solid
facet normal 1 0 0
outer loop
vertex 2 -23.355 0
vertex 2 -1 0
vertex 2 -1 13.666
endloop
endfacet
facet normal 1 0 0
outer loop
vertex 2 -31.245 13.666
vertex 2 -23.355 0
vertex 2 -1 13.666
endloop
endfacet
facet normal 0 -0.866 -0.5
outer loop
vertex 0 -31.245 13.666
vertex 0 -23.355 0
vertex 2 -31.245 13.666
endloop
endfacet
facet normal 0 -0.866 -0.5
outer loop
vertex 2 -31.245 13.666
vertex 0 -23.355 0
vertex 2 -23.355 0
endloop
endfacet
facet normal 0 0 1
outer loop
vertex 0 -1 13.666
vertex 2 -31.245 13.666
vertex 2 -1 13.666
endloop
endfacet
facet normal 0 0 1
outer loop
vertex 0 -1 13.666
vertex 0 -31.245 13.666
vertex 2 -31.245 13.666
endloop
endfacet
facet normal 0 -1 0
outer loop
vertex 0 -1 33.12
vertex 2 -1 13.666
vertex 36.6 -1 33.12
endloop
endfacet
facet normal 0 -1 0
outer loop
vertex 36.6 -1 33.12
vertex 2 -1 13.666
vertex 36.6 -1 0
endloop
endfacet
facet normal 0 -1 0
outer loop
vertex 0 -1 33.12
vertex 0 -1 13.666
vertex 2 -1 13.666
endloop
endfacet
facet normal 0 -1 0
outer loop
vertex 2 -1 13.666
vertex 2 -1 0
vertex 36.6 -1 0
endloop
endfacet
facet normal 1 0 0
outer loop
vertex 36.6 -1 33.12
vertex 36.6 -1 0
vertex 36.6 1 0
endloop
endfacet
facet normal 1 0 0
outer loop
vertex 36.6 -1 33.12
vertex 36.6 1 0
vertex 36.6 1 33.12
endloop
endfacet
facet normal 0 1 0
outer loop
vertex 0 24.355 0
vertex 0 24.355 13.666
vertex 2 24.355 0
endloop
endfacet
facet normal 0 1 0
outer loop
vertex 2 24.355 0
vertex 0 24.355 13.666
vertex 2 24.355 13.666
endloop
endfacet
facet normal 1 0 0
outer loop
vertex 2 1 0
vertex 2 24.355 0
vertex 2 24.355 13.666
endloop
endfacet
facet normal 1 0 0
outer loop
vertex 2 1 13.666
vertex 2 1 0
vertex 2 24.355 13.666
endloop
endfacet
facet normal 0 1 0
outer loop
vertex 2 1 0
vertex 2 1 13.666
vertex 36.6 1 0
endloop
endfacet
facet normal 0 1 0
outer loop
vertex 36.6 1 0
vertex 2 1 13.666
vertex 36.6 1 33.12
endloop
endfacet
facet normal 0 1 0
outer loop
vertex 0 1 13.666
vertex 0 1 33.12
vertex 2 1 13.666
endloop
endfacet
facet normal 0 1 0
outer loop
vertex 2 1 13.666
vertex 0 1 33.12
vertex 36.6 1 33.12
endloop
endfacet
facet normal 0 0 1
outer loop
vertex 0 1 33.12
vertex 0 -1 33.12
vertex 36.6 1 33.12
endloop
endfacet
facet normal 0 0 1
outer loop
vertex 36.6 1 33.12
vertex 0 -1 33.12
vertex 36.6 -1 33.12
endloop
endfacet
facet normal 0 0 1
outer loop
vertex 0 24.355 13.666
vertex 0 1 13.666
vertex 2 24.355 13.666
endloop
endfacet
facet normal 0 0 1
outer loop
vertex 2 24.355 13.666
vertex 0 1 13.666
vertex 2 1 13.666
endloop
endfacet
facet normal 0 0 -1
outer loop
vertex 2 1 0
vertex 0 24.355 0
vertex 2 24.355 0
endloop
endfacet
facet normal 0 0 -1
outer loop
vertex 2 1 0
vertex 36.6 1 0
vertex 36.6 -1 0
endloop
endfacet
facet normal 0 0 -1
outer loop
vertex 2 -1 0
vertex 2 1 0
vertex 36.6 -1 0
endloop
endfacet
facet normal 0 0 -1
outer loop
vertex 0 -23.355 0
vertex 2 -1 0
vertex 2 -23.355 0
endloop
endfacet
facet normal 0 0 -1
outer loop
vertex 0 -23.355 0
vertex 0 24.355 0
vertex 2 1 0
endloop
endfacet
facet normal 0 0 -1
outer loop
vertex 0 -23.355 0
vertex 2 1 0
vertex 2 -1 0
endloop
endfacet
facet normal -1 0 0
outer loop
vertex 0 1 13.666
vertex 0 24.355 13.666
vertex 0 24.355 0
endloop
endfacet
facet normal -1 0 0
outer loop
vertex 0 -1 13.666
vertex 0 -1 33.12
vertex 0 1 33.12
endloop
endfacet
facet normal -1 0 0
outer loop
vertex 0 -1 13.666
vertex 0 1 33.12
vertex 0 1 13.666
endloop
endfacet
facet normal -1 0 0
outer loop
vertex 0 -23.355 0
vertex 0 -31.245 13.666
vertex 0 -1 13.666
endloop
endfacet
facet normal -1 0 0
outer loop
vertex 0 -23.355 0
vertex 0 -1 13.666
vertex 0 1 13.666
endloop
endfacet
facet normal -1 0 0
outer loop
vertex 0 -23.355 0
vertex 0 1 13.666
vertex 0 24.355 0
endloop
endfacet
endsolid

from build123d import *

# Parameters (mm, degrees)
PAD_DEPTH         = 2
SKETCH001_W       = 2
SKETCH001_H       = 33.12
PAD001_DEPTH      = 34.6
PAD001_DEPTH_BACK = 2


with BuildPart() as part:
    # Sketch → Pad (new body)
    with BuildSketch(Plane.YZ):
        Polygon((-23.355, 0), (24.355, 0), (24.355, 13.665881), (-31.245, 13.665881), align=None)
    extrude(amount=PAD_DEPTH)

    # Sketch001 (on Face6 of Pad) → Pad001 (join, two sides)
    with BuildSketch(Plane.YZ.offset(2)) as pad001_sk:
        with Locations((0, 16.56)):
            Rectangle(SKETCH001_W, SKETCH001_H)
    extrude(amount=PAD001_DEPTH)
    extrude(pad001_sk.sketch, amount=-PAD001_DEPTH_BACK)


solid = part.part
